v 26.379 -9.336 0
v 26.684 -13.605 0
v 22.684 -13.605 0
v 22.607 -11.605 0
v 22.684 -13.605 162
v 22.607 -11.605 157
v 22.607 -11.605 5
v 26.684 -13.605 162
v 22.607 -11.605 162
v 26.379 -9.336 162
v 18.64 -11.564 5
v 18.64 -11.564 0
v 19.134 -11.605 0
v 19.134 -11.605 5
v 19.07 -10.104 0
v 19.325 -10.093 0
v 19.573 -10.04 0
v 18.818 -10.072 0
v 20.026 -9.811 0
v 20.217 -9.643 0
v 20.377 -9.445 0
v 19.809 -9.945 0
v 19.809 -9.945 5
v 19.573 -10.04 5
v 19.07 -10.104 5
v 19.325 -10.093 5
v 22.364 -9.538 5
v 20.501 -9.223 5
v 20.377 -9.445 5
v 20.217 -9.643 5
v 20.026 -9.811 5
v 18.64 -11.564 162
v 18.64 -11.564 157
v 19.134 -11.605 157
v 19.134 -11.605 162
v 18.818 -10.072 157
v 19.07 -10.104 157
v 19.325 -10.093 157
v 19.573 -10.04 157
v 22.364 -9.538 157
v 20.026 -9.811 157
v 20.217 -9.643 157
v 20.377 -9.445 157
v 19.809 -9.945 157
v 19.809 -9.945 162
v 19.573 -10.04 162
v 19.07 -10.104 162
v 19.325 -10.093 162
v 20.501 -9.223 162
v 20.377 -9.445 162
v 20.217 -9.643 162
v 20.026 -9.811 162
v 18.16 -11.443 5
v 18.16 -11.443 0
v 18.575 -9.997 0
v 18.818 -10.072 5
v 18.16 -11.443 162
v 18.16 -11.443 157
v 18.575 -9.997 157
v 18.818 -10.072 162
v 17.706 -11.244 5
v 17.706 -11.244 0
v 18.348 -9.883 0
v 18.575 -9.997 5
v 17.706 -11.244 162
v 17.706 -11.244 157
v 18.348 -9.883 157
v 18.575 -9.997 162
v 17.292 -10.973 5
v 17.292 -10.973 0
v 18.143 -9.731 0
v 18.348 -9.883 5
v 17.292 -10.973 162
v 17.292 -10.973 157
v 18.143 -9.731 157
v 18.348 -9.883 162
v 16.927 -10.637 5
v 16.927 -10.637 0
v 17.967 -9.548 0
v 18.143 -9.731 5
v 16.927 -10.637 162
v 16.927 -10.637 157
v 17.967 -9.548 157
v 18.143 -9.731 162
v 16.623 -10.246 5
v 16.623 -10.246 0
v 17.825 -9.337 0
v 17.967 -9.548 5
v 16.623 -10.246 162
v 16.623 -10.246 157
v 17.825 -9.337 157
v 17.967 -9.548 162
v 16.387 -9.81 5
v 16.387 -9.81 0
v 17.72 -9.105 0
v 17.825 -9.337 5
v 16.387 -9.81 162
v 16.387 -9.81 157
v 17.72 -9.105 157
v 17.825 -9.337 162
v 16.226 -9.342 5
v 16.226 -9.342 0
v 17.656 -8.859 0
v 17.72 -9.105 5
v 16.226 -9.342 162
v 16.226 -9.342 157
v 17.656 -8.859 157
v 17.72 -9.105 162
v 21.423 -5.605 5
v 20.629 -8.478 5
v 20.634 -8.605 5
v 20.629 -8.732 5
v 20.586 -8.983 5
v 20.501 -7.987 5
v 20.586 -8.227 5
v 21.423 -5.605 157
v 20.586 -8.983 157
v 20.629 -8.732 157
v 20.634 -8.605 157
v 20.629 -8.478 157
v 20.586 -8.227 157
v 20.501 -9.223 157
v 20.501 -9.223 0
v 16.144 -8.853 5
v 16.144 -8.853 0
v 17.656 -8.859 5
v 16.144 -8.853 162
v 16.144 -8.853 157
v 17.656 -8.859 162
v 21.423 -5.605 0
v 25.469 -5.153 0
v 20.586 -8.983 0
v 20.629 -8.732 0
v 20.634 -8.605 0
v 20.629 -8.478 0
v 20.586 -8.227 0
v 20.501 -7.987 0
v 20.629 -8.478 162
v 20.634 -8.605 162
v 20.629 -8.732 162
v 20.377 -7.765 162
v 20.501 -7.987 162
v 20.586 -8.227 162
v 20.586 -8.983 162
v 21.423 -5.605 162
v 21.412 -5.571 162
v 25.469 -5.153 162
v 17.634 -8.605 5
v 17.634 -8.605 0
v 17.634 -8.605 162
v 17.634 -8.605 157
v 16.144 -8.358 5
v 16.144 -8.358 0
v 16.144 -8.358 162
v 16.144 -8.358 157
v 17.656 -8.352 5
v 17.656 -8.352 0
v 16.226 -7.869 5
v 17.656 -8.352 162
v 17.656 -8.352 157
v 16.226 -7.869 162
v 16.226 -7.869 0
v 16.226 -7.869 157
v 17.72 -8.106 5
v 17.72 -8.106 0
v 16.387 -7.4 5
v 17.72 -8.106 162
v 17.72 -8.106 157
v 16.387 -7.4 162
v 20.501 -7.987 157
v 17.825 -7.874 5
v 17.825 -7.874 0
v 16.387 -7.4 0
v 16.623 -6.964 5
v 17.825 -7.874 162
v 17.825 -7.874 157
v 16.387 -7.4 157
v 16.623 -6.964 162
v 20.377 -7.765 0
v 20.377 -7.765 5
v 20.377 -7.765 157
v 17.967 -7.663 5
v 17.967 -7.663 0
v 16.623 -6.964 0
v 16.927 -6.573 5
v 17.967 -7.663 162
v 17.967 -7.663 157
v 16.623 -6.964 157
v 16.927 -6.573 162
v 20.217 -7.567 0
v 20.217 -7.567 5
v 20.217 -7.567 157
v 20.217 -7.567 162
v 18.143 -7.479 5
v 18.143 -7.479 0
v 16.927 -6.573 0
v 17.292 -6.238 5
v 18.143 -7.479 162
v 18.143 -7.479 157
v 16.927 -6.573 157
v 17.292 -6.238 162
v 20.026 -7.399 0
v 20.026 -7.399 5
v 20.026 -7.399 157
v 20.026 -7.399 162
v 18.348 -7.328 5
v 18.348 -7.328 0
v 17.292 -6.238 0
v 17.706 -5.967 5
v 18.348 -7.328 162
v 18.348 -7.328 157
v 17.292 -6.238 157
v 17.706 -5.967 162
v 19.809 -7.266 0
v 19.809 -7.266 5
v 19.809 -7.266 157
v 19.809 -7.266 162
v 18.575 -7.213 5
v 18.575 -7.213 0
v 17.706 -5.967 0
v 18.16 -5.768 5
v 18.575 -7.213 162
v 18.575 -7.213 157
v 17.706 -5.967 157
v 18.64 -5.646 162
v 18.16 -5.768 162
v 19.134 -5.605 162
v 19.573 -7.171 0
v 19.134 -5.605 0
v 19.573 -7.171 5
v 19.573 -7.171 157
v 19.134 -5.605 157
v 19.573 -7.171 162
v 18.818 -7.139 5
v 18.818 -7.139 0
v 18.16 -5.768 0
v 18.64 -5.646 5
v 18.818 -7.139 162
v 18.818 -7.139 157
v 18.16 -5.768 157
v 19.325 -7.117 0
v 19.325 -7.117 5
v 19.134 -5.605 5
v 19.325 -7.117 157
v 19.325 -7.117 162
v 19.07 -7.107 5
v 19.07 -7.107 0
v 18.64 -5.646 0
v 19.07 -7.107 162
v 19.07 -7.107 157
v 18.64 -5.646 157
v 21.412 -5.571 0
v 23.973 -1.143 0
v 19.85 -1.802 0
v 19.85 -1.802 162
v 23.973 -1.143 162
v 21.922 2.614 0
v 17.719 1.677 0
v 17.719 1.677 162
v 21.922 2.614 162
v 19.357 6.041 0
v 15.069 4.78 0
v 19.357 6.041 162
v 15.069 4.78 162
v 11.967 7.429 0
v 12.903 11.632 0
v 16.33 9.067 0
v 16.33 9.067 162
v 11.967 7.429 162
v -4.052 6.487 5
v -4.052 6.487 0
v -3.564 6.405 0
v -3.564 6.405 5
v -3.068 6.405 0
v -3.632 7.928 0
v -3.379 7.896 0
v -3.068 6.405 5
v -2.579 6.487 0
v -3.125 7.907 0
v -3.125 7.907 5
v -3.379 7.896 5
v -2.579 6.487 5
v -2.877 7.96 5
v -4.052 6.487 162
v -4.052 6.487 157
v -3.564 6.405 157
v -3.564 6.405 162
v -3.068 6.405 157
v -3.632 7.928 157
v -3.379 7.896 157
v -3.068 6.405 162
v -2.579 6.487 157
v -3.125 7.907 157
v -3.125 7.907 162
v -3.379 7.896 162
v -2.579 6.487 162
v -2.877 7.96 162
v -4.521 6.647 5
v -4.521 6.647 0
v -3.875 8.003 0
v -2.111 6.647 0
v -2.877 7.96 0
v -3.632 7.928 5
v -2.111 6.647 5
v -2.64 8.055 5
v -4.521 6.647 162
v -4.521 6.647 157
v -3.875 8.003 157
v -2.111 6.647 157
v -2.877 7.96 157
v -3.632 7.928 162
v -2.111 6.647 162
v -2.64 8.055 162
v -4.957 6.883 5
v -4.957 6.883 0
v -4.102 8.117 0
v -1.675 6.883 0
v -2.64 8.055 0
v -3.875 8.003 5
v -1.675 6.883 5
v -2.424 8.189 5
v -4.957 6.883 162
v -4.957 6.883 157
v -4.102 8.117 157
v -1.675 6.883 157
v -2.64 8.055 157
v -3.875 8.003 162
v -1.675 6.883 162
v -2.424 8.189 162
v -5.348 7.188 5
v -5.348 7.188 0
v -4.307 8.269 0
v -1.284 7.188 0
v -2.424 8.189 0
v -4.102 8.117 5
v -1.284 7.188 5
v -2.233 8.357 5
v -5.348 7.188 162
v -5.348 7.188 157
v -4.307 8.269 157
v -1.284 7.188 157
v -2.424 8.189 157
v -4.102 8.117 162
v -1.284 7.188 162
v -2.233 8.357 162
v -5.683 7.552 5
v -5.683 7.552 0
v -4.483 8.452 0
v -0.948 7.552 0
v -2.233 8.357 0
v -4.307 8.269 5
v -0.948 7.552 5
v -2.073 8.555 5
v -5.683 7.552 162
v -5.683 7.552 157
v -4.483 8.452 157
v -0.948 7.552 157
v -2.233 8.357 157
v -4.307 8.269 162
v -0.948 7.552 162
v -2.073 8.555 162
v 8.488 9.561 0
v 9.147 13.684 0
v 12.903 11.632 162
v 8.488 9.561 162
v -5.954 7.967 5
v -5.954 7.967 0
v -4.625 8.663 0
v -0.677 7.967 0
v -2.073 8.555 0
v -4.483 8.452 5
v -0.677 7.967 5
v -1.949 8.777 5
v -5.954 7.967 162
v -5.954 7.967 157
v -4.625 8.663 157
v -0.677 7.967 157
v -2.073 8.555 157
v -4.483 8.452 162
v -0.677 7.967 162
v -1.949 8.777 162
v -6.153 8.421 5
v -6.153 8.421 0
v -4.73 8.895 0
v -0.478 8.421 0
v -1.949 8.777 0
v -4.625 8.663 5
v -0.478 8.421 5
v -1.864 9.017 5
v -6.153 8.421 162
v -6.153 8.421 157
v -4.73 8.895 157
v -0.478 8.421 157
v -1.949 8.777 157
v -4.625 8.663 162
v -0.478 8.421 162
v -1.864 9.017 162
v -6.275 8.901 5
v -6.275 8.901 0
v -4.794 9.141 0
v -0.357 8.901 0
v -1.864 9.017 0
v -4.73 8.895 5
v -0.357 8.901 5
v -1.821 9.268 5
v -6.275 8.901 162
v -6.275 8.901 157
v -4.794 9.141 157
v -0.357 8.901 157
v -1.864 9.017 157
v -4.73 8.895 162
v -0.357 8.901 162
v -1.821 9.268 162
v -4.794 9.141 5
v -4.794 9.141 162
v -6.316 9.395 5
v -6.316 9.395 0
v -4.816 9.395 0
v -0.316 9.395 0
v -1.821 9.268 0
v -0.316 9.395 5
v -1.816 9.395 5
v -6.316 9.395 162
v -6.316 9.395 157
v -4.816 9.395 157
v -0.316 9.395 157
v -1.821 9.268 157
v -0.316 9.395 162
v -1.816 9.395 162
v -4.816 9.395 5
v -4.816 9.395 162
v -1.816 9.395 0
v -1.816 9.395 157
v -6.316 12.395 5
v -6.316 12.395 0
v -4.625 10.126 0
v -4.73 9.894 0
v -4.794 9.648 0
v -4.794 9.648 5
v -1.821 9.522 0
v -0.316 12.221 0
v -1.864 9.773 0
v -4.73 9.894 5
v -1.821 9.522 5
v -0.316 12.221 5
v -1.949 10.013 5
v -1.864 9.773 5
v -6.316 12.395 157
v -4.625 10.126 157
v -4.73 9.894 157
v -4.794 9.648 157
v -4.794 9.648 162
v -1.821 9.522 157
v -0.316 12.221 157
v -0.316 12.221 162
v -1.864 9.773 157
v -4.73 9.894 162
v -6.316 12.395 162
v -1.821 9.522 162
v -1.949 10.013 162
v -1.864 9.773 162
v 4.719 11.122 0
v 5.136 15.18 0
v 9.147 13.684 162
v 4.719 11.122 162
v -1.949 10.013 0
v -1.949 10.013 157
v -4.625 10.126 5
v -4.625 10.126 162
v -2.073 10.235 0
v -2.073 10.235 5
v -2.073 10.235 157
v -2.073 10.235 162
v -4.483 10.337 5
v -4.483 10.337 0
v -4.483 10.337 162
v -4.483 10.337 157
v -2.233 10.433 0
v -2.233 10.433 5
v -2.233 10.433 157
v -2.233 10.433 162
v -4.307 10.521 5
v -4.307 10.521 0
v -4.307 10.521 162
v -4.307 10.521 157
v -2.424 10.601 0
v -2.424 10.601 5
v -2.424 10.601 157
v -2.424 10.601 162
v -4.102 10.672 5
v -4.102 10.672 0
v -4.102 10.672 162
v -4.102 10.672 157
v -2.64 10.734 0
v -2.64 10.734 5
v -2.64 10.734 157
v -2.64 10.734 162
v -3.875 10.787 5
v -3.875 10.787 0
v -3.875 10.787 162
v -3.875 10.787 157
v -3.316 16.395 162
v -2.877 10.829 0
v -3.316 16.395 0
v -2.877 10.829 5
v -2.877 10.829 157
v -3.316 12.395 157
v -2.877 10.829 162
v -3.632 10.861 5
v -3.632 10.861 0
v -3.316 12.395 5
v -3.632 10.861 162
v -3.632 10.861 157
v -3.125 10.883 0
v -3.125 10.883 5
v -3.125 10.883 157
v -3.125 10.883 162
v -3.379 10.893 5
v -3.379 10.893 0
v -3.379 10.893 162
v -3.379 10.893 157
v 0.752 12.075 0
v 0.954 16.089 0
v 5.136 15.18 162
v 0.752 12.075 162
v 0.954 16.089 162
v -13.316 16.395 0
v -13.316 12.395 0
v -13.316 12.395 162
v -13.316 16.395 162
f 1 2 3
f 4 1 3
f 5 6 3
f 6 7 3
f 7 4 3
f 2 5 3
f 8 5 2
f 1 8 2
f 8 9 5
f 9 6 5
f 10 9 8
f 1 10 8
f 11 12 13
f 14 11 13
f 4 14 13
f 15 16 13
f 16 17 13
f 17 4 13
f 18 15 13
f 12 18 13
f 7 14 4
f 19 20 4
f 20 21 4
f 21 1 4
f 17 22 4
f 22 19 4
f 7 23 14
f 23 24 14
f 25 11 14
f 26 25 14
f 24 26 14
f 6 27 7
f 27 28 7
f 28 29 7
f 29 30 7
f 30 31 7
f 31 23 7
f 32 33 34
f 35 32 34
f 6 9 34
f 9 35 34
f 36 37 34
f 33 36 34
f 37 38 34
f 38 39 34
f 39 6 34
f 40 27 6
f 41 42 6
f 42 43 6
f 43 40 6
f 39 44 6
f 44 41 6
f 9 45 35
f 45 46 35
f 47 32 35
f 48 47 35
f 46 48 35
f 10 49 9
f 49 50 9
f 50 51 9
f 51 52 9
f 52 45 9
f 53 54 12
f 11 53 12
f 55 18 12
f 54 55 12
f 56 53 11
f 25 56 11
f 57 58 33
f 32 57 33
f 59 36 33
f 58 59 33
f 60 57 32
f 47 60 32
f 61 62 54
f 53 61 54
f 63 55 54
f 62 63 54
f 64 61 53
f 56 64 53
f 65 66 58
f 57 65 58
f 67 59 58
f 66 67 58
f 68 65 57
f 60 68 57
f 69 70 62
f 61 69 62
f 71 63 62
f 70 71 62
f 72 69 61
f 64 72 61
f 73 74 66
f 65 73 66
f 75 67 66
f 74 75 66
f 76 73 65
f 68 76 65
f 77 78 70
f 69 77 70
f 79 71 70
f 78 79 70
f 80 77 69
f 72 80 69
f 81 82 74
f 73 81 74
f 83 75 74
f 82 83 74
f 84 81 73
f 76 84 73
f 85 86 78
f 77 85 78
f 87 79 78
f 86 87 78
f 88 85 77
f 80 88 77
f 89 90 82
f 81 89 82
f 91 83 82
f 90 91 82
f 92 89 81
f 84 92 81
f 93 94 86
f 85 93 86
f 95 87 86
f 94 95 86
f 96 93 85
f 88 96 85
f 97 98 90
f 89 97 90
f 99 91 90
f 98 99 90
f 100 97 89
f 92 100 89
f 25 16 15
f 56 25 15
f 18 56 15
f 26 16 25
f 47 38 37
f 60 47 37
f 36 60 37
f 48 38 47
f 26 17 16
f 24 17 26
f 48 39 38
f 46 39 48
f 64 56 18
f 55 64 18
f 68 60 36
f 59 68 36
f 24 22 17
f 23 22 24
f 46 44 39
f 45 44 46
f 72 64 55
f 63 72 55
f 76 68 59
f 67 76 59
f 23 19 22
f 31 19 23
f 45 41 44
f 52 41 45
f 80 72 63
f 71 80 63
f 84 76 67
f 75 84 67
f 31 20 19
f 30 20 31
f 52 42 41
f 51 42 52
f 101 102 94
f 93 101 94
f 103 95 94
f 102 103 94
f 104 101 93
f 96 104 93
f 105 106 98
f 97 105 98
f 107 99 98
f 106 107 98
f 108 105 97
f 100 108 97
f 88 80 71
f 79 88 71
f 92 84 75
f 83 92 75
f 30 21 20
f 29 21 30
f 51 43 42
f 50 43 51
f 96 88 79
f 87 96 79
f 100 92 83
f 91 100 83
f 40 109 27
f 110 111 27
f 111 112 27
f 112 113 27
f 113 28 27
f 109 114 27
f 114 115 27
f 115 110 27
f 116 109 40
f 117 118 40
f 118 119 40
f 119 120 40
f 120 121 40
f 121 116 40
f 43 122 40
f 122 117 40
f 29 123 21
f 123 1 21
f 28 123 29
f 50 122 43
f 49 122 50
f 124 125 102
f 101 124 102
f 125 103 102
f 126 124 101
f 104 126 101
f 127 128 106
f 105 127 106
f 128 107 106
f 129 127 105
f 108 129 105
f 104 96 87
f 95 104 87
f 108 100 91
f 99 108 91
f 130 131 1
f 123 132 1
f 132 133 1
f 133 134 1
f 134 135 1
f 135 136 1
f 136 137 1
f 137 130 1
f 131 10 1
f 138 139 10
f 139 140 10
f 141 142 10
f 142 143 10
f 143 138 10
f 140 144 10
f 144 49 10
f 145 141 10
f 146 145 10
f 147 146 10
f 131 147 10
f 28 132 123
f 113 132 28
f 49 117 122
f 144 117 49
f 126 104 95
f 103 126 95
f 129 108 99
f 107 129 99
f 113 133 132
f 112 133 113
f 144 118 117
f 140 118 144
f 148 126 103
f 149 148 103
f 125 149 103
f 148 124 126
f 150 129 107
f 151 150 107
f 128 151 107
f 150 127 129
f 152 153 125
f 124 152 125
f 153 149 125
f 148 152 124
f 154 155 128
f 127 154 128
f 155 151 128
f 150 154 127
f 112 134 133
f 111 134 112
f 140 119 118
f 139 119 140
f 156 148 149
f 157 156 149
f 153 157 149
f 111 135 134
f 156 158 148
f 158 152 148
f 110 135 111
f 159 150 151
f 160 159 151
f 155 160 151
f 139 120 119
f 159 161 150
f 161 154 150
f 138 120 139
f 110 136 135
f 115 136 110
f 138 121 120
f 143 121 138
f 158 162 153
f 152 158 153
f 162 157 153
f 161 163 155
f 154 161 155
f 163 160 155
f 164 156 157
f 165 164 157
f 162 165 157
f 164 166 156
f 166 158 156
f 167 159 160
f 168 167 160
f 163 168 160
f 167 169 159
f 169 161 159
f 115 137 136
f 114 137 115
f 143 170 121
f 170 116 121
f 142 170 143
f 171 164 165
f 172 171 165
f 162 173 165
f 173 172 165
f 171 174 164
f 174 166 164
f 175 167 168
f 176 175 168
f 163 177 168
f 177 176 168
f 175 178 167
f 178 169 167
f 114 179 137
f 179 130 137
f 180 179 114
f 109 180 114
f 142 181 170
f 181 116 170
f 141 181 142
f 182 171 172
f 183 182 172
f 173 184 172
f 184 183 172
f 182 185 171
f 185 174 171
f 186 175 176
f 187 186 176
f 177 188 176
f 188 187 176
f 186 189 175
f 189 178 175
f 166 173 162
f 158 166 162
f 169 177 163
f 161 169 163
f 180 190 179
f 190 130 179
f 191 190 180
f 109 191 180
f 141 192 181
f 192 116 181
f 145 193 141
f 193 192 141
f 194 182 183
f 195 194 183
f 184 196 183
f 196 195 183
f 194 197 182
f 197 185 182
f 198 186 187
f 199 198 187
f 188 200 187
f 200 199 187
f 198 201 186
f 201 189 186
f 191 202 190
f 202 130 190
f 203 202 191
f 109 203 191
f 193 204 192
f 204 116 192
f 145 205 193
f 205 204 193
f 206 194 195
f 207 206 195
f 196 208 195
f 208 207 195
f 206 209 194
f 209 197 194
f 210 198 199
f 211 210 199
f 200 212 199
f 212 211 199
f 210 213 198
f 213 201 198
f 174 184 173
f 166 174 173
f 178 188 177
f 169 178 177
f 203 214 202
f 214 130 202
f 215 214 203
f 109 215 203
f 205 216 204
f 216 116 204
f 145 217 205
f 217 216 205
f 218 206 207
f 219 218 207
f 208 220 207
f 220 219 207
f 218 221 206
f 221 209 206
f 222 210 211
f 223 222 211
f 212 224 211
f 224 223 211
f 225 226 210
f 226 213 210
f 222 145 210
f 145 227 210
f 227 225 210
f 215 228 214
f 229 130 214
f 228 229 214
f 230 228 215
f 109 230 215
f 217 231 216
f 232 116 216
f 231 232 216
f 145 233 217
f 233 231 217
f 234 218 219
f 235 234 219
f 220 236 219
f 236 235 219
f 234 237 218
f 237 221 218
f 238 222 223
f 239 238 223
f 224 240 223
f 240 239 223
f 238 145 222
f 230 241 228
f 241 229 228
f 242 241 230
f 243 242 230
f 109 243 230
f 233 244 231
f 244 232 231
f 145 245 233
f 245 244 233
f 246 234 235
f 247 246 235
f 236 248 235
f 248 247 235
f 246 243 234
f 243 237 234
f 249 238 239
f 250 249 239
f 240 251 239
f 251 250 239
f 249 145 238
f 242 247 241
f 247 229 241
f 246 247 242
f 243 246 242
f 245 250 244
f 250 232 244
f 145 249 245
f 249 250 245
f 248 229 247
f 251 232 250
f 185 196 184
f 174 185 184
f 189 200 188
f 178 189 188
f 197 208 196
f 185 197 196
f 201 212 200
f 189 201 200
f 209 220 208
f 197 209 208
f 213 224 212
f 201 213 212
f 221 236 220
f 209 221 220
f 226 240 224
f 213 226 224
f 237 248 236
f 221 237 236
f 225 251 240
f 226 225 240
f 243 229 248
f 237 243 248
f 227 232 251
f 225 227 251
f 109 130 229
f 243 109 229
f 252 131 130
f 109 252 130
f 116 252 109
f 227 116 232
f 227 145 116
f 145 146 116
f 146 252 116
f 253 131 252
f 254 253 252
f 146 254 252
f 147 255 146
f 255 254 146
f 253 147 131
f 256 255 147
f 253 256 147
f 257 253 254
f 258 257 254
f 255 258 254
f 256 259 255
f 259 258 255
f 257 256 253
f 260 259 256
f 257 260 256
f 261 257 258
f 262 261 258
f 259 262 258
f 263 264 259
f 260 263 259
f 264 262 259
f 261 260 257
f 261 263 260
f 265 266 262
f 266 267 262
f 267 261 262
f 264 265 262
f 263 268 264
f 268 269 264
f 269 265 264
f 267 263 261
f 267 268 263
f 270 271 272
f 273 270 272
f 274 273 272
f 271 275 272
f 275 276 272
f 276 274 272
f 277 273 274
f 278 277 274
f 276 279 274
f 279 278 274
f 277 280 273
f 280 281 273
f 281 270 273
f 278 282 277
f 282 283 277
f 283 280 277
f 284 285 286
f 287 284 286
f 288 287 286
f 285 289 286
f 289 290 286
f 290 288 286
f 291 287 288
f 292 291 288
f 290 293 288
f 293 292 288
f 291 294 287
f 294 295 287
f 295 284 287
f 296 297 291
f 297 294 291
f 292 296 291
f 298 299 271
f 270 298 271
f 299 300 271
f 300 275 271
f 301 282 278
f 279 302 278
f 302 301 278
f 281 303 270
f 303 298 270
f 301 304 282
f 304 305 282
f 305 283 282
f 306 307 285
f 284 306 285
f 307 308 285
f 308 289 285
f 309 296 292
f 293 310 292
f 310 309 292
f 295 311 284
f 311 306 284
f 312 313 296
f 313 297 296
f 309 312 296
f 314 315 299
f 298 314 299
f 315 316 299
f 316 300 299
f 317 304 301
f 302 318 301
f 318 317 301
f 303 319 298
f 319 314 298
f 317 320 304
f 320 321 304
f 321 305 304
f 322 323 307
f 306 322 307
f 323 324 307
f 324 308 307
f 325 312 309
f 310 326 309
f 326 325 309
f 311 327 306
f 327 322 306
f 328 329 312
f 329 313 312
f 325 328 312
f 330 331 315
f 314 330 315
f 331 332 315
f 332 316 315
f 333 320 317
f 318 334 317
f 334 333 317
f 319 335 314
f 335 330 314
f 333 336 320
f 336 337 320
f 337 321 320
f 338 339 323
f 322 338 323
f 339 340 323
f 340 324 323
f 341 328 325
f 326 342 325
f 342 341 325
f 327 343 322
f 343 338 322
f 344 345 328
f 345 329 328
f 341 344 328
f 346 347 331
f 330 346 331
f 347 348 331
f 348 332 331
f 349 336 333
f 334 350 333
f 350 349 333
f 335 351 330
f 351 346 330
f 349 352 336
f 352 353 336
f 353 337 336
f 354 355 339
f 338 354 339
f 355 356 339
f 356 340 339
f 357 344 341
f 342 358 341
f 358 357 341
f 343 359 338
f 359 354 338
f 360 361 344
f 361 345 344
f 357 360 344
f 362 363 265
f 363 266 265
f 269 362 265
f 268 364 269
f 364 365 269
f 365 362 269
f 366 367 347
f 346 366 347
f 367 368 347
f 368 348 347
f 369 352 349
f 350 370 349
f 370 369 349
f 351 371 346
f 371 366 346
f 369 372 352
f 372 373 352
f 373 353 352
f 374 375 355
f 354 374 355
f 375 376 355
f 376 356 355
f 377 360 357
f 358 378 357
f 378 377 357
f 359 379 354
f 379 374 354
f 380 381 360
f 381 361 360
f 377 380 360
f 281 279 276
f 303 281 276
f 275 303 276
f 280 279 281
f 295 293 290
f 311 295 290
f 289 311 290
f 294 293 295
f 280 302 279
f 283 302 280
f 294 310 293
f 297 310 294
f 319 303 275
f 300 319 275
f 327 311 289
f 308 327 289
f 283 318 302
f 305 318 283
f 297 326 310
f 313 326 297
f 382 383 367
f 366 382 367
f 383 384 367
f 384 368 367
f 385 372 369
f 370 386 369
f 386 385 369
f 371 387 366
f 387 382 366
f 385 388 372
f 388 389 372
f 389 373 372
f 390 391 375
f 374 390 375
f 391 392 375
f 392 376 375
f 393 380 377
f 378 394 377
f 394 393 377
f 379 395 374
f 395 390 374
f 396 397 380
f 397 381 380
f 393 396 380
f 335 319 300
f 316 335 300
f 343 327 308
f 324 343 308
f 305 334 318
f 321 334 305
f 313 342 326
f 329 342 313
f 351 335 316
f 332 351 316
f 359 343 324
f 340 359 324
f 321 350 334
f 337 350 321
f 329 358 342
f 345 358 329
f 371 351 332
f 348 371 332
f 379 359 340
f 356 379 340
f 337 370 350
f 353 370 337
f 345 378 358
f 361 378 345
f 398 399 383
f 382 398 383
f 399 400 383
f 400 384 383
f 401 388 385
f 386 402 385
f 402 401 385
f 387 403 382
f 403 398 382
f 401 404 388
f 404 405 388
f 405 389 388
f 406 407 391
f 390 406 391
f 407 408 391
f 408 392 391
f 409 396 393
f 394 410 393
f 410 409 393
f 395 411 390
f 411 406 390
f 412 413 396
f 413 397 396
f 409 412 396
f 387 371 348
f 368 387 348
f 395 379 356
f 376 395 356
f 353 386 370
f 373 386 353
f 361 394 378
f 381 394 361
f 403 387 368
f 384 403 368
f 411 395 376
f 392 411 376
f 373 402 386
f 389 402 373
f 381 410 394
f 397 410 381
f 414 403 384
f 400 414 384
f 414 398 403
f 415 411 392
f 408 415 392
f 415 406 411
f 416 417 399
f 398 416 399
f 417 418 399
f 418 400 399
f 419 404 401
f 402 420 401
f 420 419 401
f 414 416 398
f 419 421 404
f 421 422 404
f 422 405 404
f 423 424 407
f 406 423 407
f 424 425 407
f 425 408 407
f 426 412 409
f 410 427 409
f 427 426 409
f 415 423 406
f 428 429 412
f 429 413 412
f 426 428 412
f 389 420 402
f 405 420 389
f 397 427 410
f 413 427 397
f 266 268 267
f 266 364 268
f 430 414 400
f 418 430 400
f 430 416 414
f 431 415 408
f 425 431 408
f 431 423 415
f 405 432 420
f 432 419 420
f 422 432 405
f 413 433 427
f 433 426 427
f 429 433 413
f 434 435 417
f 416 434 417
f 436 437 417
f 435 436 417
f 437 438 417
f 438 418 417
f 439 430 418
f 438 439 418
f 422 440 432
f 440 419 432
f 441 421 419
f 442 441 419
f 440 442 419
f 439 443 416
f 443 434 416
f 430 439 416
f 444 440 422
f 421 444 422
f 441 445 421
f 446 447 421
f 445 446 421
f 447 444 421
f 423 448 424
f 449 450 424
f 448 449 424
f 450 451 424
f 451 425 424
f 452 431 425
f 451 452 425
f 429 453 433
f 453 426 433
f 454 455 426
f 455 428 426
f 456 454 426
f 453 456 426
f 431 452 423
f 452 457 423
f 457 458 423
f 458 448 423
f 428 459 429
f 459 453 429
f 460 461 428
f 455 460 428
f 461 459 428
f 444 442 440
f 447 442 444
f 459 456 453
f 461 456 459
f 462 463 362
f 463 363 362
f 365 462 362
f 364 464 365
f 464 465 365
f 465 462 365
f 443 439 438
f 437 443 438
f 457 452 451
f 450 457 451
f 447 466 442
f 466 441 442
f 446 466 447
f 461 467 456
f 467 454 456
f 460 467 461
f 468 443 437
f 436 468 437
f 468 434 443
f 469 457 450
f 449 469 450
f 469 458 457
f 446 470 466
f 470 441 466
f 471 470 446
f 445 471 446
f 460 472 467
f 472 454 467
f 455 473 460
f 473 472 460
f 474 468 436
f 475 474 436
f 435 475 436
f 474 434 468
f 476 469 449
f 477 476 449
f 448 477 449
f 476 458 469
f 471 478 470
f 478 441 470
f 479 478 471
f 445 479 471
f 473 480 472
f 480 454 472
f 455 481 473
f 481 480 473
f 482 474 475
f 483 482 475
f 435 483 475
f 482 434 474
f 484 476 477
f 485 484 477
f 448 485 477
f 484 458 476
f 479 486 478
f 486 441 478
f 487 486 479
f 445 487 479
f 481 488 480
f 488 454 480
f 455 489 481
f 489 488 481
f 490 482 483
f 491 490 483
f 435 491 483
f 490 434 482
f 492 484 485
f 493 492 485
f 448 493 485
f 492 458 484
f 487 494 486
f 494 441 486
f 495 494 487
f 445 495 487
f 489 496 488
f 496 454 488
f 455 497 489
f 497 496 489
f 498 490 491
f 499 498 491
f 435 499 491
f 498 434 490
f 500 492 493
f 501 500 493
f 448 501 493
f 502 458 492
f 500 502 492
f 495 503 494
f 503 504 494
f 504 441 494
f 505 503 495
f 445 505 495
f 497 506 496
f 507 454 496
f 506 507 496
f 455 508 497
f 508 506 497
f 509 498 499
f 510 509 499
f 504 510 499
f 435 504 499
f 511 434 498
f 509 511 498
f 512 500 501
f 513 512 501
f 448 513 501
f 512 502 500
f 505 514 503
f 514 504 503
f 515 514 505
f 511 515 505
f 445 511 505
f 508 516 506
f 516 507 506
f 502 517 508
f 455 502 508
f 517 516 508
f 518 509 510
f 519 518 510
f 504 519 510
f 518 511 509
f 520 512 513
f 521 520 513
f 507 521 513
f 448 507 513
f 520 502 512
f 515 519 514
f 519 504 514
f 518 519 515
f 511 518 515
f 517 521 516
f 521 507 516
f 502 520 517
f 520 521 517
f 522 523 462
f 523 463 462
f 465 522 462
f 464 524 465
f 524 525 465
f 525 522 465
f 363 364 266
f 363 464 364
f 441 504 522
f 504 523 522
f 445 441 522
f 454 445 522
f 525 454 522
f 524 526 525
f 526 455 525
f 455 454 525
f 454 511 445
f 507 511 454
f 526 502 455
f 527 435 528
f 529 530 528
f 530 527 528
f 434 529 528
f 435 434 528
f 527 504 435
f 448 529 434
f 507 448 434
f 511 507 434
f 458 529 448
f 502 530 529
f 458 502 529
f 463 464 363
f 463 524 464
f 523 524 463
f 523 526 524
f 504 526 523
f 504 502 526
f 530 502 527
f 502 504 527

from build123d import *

# Parameters (mm, degrees)
SKETCH_1_R          = 1.5
EXTRUDE_1_DEPTH     = 162
CUT_EXTRUDE_1_DEPTH = 76


with BuildPart() as part:
    # 草图1 → 凸台-拉伸1 (new body)
    with BuildSketch(Plane.XY):
        with BuildLine():
            Line((-6.315789474, 9.394736842), (-6.315789474, 12.394736842))
            Line((-6.315789474, 12.394736842), (-13.315789474, 12.394736842))
            Line((-13.315789474, 12.394736842), (-13.315789474, 16.394736842))
            Line((-13.315789474, 16.394736842), (-3.315789474, 16.394736842))
            ThreePointArc((-3.315789474, 16.394736842), (17.897413962, 7.607940278), (26.684210526, -13.605263158))
            Line((26.684210526, -13.605263158), (22.684210526, -13.605263158))
            ThreePointArc((22.684210526, -13.605263158), (22.664944086, -12.604521591), (22.60717332, -11.605263158))
            Line((22.60717332, -11.605263158), (19.134154847, -11.605263158))
            ThreePointArc((19.134154847, -11.605263158), (16.134154847, -8.605263158), (19.134154847, -5.605263158))
            Line((19.134154847, -5.605263158), (21.42284428, -5.605263158))
            ThreePointArc((21.42284428, -5.605263158), (13.170646711, 6.499398539), (-0.315789474, 12.221079982))
            Line((-0.315789474, 12.221079982), (-0.315789474, 9.394736842))
            ThreePointArc((-0.315789474, 9.394736842), (-3.315789474, 6.394736842), (-6.315789474, 9.394736842))
        make_face()
        with Locations((-3.315789474, 9.394736842)):
            Circle(SKETCH_1_R, mode=Mode.SUBTRACT)
        with Locations((19.134154847, -8.605263158)):
            Circle(SKETCH_1_R, mode=Mode.SUBTRACT)
    extrude(amount=EXTRUDE_1_DEPTH)

    # 草图3 → 切除-拉伸1 (cut, symmetric)
    with BuildSketch(Plane.XY.offset(81)):
        with BuildLine():
            Line((-3.315789474, 12.394736842), (-13.315789474, 12.394736842))
            Line((-13.315789474, 12.394736842), (-18.728718327, 7.33373453))
            ThreePointArc((-18.728718327, 7.33373453), (4.795500809, -38.307630857), (-3.315789474, 12.394736842))
        make_face()
    extrude(amount=CUT_EXTRUDE_1_DEPTH, both=True, mode=Mode.SUBTRACT)


solid = part.part
